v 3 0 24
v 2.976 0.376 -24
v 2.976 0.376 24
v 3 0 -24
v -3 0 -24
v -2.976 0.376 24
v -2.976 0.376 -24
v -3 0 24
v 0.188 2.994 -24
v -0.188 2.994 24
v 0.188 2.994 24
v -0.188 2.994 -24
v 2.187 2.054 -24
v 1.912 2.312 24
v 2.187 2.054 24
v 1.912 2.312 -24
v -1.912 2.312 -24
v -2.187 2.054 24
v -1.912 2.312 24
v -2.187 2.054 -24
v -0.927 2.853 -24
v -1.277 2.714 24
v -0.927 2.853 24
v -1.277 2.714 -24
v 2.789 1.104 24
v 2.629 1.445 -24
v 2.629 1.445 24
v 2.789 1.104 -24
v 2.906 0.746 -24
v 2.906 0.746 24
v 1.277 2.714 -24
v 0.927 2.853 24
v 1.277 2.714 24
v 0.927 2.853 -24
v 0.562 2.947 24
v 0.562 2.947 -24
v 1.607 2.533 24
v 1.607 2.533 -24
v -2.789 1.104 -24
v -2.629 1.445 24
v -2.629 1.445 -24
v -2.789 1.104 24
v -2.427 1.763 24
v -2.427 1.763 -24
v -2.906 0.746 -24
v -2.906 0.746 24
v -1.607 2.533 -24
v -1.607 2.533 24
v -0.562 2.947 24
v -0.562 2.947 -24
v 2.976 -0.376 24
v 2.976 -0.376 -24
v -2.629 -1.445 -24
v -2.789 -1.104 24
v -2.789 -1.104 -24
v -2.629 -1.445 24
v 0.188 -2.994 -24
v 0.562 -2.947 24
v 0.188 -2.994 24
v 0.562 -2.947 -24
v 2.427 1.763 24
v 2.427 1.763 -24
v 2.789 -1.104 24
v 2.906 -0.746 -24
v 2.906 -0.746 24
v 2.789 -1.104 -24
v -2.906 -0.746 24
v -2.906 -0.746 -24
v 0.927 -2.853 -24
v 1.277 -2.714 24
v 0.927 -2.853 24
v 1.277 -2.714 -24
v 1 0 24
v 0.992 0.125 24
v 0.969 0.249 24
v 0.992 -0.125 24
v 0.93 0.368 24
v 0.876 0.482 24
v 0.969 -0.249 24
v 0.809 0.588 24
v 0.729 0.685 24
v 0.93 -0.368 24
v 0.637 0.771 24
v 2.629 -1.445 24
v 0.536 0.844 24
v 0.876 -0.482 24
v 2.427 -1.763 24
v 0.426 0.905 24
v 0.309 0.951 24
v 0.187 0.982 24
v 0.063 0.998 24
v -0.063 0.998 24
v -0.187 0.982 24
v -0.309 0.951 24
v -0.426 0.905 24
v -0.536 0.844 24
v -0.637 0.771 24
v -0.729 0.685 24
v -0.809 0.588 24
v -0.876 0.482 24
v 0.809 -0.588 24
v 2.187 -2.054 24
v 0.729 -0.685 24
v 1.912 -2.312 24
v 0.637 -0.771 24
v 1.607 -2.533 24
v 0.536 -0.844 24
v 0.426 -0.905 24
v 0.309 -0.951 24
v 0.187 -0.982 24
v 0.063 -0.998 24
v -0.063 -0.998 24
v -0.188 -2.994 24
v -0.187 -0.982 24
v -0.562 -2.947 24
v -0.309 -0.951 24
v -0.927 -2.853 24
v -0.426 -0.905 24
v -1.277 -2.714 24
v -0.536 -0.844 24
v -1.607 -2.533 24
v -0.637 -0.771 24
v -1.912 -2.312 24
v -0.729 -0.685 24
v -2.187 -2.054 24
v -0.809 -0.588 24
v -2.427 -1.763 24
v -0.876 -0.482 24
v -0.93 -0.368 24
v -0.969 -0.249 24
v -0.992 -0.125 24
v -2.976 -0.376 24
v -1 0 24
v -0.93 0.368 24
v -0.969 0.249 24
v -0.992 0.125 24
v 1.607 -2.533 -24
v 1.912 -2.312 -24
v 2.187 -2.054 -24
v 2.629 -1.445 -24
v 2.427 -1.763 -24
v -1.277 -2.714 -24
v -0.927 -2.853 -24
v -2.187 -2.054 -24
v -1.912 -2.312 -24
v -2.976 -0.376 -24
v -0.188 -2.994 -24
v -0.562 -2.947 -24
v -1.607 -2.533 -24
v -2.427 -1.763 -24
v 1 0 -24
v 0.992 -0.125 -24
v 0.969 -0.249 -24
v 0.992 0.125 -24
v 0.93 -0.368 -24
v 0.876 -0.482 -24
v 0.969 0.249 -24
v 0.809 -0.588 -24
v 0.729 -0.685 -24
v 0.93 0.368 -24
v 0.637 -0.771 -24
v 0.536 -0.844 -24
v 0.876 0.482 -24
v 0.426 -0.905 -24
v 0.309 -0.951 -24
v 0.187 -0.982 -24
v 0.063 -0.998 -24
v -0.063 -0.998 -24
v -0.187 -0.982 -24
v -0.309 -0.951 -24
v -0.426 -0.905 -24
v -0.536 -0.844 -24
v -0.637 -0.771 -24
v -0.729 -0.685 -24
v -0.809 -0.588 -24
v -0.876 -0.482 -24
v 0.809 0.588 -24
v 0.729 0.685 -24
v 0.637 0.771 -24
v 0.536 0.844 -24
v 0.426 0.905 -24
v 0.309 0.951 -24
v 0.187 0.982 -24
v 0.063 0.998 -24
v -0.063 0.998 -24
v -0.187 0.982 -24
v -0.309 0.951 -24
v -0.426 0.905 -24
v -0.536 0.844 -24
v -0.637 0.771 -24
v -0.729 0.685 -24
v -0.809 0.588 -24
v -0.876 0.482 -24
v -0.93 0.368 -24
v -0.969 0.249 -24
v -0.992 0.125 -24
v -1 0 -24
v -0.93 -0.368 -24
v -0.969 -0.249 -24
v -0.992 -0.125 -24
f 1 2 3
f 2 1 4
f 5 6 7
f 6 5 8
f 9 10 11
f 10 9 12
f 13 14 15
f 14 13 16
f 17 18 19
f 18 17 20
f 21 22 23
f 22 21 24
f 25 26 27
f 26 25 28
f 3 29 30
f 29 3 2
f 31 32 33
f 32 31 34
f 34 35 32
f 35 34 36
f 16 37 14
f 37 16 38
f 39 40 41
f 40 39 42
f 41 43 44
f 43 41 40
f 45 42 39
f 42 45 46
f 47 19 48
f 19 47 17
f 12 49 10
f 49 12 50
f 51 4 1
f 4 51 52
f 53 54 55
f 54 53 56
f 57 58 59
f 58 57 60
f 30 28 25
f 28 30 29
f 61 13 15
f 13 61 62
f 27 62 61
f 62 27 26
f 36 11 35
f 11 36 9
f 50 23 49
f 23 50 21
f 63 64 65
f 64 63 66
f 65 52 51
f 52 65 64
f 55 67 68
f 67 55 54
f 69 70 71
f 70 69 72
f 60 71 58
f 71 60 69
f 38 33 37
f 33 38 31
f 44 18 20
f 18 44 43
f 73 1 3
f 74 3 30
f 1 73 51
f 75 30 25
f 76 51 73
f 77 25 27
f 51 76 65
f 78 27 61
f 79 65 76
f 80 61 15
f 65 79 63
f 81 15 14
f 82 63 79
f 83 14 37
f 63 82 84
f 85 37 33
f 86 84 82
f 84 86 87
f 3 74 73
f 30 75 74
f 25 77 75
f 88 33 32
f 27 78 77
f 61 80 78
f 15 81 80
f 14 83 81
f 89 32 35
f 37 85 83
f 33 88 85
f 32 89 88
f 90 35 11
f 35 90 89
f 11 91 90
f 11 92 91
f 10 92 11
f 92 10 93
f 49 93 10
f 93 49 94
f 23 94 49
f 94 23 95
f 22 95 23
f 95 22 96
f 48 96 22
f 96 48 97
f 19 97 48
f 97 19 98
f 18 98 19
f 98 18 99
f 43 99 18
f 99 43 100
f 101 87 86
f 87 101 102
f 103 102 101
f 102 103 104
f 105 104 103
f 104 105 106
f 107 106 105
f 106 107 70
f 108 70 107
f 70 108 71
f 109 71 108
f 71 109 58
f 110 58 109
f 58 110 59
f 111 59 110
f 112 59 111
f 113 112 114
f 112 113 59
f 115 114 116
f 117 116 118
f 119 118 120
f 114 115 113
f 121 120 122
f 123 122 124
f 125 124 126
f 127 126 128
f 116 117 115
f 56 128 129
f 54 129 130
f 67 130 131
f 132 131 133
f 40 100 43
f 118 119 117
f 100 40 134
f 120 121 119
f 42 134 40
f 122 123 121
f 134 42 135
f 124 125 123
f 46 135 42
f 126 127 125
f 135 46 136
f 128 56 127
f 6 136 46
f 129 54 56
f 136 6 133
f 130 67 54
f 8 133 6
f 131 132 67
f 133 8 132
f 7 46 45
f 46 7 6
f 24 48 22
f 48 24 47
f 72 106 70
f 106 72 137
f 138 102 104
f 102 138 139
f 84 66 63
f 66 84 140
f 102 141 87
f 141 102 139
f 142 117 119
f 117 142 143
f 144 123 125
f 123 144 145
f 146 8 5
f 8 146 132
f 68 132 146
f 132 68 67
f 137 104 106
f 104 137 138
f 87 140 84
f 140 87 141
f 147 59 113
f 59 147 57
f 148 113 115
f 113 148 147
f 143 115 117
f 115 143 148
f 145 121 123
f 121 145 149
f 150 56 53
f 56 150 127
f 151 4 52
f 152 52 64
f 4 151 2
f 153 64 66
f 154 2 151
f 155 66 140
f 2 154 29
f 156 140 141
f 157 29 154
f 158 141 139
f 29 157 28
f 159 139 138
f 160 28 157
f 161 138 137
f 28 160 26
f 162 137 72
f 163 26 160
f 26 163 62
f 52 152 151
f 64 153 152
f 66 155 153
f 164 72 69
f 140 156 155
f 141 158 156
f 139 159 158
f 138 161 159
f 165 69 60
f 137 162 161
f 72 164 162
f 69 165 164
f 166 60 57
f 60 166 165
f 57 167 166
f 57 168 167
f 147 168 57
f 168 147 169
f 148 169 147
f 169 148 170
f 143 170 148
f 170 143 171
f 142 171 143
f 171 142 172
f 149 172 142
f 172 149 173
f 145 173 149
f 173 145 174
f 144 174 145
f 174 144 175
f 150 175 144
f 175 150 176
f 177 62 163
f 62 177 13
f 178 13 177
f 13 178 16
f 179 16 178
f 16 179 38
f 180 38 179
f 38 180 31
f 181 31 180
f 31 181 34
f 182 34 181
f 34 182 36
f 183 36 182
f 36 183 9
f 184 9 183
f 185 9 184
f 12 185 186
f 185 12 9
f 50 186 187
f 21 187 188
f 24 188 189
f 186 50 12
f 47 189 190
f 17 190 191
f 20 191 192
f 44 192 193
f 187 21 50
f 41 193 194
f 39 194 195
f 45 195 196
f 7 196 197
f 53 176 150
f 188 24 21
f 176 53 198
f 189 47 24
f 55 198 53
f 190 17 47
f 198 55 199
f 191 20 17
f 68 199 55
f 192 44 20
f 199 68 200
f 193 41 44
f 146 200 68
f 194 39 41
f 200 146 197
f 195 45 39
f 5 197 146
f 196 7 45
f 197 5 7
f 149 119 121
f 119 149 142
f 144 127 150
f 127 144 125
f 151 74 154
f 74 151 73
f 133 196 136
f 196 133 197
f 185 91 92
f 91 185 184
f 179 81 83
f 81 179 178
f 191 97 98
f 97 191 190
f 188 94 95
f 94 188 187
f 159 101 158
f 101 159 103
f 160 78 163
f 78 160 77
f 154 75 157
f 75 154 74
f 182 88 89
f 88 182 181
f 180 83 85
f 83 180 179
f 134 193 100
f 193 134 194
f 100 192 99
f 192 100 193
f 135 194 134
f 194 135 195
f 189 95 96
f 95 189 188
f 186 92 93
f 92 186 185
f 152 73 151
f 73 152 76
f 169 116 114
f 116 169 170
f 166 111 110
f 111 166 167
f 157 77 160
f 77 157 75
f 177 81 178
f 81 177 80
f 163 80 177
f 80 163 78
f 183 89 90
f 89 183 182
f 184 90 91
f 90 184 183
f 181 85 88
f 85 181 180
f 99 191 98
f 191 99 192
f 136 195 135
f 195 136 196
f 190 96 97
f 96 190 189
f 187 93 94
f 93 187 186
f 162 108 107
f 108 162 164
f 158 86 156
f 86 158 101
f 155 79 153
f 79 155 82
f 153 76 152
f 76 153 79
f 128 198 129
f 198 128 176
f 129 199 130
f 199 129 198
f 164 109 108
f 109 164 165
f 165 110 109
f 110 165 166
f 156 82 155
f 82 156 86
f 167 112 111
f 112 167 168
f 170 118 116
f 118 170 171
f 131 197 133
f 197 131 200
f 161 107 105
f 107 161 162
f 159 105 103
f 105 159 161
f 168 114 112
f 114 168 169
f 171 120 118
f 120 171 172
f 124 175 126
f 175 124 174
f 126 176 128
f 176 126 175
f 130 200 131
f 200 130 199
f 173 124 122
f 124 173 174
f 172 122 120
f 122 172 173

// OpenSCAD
$fn = 50;


difference() {
	union() {
		translate(v = [0, 0, -24.0000000000]) {
			cylinder(h = 48, r = 3.0000000000);
		}
	}
	union() {
		translate(v = [0, 0, -100.0000000000]) {
			cylinder(h = 200, r = 1.0000000000);
		}
	}
}
